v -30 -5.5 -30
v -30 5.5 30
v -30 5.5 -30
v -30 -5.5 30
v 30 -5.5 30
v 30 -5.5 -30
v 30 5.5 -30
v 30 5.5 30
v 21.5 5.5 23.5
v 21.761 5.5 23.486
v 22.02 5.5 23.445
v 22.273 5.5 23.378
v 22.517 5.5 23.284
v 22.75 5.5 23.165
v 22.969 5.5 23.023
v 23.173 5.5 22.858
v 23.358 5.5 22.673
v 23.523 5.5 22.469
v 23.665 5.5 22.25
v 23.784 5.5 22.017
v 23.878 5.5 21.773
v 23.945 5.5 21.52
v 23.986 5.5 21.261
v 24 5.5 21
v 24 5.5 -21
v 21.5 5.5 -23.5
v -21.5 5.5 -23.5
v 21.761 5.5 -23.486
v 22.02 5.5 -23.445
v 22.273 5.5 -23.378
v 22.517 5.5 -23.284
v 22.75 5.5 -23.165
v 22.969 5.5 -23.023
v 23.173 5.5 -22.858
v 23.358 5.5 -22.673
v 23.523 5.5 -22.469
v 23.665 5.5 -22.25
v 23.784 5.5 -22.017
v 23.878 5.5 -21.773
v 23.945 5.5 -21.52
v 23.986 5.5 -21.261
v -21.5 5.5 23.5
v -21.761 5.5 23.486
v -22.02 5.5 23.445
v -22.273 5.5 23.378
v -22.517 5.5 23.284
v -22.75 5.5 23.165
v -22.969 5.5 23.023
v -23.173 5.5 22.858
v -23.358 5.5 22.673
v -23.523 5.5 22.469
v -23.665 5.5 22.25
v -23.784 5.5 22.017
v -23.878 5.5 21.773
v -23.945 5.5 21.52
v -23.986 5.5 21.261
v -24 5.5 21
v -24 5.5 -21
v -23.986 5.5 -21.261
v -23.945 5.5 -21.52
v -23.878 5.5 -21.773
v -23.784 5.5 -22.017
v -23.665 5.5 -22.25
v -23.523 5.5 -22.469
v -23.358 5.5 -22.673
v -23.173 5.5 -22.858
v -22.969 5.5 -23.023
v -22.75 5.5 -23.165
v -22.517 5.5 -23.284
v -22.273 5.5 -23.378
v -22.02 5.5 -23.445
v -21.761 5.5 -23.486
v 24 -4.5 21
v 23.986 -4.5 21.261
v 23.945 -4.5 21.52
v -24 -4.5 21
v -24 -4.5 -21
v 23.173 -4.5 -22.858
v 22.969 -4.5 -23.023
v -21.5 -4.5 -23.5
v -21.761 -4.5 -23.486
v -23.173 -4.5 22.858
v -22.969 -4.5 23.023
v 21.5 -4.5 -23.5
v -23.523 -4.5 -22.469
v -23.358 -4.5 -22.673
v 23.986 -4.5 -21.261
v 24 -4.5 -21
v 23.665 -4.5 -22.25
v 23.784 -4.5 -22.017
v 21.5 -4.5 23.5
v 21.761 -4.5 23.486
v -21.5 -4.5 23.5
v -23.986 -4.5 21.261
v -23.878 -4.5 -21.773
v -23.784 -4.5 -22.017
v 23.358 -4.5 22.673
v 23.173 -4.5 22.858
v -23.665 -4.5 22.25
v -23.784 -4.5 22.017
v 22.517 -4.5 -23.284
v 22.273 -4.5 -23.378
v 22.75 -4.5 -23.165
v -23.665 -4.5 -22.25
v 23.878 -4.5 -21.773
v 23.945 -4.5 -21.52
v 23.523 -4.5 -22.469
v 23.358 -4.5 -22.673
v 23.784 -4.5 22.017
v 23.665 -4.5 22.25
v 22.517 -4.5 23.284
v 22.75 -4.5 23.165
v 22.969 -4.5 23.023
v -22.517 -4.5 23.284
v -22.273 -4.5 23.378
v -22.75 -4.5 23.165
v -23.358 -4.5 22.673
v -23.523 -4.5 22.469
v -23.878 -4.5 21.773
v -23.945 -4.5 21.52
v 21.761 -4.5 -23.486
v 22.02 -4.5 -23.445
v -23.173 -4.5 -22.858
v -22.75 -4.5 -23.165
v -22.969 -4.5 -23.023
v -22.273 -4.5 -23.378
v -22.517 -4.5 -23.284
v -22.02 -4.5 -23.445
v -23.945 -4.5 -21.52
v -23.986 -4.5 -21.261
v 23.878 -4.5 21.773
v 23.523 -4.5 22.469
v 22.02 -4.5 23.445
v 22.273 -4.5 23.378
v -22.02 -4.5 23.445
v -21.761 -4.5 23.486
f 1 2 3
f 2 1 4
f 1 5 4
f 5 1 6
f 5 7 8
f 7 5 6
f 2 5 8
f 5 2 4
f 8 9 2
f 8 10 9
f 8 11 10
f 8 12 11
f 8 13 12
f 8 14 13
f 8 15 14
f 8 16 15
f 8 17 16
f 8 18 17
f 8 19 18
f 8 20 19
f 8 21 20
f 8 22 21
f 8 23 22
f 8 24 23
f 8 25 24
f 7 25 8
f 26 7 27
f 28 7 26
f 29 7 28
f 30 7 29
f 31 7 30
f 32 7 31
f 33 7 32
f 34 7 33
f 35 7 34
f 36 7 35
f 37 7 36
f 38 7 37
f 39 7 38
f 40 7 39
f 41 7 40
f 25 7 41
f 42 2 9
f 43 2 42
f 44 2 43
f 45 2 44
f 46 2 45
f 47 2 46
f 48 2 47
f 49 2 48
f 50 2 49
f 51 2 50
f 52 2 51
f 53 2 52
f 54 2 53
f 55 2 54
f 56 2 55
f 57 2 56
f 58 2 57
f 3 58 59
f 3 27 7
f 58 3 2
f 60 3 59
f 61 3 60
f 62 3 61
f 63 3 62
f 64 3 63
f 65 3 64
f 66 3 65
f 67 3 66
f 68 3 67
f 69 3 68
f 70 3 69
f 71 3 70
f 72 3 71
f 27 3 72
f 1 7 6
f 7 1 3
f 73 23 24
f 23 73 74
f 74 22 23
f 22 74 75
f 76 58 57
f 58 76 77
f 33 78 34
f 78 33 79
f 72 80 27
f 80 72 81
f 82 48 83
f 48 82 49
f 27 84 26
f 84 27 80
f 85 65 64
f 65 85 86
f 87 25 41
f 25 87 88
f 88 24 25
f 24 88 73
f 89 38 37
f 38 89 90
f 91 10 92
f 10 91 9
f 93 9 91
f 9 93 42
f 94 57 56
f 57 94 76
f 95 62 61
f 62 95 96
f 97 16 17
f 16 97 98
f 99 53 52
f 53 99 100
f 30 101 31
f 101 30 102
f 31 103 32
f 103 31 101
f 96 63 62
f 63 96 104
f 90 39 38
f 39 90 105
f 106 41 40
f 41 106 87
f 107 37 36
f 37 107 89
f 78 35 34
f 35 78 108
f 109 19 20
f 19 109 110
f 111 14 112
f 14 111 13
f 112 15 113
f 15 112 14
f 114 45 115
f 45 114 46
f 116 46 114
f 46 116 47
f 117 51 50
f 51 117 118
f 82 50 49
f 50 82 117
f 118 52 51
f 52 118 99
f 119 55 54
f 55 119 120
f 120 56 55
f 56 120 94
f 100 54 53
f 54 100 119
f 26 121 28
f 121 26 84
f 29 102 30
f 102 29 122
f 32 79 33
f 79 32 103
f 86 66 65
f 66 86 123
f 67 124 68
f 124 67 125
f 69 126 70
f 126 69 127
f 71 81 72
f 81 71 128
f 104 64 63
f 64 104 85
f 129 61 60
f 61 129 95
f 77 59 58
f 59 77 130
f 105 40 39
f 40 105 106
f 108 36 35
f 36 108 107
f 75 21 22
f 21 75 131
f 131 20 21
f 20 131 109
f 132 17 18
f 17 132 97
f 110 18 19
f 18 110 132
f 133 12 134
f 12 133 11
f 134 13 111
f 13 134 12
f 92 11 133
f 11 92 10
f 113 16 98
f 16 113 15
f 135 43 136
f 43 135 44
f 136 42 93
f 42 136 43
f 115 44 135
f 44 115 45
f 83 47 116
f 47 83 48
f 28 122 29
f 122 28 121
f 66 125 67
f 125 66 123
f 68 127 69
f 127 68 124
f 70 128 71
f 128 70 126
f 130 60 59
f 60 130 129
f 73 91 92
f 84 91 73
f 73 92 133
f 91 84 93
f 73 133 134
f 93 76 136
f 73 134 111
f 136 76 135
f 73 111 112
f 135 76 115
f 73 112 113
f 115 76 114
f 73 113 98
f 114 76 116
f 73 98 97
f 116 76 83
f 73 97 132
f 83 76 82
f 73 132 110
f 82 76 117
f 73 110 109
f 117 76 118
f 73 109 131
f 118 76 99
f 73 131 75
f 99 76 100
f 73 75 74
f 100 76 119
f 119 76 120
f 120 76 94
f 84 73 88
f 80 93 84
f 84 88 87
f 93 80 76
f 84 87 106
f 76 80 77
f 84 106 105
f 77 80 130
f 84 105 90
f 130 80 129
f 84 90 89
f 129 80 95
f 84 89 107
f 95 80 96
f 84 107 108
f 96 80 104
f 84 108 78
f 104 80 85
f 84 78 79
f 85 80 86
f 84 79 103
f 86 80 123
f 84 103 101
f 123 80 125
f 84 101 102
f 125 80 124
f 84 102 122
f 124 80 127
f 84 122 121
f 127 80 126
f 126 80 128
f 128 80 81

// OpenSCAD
// Halter Mii Temp + Hum Sensor

module innerFrame(){
    hull(){
        translate([21.5,21,0])
        cylinder(d=5,h=12,center=true);
        translate([-21.5,21,0])
        cylinder(d=5,h=12,center=true);
        translate([21.5,-21,0])
        cylinder(d=5,h=12,center=true);
        translate([-21.5,-21,0])
        cylinder(d=5,h=12,center=true);
    }
}

module Frame() {
    $fn=60;
    difference() {
        cube([60,60,11],center=true);
        innerFrame();
    }
    translate([0,0,5])
    cube([60,60,1],center=true);
}

module Halter() {
    translate([0,0,40])
    difference(){
        cube([60,50,20],center=true);
        translate([0,0,5])
        cube([70,43,15],center=true);
    }
}
rotate([90,0,0]) Frame();
//Halter();
